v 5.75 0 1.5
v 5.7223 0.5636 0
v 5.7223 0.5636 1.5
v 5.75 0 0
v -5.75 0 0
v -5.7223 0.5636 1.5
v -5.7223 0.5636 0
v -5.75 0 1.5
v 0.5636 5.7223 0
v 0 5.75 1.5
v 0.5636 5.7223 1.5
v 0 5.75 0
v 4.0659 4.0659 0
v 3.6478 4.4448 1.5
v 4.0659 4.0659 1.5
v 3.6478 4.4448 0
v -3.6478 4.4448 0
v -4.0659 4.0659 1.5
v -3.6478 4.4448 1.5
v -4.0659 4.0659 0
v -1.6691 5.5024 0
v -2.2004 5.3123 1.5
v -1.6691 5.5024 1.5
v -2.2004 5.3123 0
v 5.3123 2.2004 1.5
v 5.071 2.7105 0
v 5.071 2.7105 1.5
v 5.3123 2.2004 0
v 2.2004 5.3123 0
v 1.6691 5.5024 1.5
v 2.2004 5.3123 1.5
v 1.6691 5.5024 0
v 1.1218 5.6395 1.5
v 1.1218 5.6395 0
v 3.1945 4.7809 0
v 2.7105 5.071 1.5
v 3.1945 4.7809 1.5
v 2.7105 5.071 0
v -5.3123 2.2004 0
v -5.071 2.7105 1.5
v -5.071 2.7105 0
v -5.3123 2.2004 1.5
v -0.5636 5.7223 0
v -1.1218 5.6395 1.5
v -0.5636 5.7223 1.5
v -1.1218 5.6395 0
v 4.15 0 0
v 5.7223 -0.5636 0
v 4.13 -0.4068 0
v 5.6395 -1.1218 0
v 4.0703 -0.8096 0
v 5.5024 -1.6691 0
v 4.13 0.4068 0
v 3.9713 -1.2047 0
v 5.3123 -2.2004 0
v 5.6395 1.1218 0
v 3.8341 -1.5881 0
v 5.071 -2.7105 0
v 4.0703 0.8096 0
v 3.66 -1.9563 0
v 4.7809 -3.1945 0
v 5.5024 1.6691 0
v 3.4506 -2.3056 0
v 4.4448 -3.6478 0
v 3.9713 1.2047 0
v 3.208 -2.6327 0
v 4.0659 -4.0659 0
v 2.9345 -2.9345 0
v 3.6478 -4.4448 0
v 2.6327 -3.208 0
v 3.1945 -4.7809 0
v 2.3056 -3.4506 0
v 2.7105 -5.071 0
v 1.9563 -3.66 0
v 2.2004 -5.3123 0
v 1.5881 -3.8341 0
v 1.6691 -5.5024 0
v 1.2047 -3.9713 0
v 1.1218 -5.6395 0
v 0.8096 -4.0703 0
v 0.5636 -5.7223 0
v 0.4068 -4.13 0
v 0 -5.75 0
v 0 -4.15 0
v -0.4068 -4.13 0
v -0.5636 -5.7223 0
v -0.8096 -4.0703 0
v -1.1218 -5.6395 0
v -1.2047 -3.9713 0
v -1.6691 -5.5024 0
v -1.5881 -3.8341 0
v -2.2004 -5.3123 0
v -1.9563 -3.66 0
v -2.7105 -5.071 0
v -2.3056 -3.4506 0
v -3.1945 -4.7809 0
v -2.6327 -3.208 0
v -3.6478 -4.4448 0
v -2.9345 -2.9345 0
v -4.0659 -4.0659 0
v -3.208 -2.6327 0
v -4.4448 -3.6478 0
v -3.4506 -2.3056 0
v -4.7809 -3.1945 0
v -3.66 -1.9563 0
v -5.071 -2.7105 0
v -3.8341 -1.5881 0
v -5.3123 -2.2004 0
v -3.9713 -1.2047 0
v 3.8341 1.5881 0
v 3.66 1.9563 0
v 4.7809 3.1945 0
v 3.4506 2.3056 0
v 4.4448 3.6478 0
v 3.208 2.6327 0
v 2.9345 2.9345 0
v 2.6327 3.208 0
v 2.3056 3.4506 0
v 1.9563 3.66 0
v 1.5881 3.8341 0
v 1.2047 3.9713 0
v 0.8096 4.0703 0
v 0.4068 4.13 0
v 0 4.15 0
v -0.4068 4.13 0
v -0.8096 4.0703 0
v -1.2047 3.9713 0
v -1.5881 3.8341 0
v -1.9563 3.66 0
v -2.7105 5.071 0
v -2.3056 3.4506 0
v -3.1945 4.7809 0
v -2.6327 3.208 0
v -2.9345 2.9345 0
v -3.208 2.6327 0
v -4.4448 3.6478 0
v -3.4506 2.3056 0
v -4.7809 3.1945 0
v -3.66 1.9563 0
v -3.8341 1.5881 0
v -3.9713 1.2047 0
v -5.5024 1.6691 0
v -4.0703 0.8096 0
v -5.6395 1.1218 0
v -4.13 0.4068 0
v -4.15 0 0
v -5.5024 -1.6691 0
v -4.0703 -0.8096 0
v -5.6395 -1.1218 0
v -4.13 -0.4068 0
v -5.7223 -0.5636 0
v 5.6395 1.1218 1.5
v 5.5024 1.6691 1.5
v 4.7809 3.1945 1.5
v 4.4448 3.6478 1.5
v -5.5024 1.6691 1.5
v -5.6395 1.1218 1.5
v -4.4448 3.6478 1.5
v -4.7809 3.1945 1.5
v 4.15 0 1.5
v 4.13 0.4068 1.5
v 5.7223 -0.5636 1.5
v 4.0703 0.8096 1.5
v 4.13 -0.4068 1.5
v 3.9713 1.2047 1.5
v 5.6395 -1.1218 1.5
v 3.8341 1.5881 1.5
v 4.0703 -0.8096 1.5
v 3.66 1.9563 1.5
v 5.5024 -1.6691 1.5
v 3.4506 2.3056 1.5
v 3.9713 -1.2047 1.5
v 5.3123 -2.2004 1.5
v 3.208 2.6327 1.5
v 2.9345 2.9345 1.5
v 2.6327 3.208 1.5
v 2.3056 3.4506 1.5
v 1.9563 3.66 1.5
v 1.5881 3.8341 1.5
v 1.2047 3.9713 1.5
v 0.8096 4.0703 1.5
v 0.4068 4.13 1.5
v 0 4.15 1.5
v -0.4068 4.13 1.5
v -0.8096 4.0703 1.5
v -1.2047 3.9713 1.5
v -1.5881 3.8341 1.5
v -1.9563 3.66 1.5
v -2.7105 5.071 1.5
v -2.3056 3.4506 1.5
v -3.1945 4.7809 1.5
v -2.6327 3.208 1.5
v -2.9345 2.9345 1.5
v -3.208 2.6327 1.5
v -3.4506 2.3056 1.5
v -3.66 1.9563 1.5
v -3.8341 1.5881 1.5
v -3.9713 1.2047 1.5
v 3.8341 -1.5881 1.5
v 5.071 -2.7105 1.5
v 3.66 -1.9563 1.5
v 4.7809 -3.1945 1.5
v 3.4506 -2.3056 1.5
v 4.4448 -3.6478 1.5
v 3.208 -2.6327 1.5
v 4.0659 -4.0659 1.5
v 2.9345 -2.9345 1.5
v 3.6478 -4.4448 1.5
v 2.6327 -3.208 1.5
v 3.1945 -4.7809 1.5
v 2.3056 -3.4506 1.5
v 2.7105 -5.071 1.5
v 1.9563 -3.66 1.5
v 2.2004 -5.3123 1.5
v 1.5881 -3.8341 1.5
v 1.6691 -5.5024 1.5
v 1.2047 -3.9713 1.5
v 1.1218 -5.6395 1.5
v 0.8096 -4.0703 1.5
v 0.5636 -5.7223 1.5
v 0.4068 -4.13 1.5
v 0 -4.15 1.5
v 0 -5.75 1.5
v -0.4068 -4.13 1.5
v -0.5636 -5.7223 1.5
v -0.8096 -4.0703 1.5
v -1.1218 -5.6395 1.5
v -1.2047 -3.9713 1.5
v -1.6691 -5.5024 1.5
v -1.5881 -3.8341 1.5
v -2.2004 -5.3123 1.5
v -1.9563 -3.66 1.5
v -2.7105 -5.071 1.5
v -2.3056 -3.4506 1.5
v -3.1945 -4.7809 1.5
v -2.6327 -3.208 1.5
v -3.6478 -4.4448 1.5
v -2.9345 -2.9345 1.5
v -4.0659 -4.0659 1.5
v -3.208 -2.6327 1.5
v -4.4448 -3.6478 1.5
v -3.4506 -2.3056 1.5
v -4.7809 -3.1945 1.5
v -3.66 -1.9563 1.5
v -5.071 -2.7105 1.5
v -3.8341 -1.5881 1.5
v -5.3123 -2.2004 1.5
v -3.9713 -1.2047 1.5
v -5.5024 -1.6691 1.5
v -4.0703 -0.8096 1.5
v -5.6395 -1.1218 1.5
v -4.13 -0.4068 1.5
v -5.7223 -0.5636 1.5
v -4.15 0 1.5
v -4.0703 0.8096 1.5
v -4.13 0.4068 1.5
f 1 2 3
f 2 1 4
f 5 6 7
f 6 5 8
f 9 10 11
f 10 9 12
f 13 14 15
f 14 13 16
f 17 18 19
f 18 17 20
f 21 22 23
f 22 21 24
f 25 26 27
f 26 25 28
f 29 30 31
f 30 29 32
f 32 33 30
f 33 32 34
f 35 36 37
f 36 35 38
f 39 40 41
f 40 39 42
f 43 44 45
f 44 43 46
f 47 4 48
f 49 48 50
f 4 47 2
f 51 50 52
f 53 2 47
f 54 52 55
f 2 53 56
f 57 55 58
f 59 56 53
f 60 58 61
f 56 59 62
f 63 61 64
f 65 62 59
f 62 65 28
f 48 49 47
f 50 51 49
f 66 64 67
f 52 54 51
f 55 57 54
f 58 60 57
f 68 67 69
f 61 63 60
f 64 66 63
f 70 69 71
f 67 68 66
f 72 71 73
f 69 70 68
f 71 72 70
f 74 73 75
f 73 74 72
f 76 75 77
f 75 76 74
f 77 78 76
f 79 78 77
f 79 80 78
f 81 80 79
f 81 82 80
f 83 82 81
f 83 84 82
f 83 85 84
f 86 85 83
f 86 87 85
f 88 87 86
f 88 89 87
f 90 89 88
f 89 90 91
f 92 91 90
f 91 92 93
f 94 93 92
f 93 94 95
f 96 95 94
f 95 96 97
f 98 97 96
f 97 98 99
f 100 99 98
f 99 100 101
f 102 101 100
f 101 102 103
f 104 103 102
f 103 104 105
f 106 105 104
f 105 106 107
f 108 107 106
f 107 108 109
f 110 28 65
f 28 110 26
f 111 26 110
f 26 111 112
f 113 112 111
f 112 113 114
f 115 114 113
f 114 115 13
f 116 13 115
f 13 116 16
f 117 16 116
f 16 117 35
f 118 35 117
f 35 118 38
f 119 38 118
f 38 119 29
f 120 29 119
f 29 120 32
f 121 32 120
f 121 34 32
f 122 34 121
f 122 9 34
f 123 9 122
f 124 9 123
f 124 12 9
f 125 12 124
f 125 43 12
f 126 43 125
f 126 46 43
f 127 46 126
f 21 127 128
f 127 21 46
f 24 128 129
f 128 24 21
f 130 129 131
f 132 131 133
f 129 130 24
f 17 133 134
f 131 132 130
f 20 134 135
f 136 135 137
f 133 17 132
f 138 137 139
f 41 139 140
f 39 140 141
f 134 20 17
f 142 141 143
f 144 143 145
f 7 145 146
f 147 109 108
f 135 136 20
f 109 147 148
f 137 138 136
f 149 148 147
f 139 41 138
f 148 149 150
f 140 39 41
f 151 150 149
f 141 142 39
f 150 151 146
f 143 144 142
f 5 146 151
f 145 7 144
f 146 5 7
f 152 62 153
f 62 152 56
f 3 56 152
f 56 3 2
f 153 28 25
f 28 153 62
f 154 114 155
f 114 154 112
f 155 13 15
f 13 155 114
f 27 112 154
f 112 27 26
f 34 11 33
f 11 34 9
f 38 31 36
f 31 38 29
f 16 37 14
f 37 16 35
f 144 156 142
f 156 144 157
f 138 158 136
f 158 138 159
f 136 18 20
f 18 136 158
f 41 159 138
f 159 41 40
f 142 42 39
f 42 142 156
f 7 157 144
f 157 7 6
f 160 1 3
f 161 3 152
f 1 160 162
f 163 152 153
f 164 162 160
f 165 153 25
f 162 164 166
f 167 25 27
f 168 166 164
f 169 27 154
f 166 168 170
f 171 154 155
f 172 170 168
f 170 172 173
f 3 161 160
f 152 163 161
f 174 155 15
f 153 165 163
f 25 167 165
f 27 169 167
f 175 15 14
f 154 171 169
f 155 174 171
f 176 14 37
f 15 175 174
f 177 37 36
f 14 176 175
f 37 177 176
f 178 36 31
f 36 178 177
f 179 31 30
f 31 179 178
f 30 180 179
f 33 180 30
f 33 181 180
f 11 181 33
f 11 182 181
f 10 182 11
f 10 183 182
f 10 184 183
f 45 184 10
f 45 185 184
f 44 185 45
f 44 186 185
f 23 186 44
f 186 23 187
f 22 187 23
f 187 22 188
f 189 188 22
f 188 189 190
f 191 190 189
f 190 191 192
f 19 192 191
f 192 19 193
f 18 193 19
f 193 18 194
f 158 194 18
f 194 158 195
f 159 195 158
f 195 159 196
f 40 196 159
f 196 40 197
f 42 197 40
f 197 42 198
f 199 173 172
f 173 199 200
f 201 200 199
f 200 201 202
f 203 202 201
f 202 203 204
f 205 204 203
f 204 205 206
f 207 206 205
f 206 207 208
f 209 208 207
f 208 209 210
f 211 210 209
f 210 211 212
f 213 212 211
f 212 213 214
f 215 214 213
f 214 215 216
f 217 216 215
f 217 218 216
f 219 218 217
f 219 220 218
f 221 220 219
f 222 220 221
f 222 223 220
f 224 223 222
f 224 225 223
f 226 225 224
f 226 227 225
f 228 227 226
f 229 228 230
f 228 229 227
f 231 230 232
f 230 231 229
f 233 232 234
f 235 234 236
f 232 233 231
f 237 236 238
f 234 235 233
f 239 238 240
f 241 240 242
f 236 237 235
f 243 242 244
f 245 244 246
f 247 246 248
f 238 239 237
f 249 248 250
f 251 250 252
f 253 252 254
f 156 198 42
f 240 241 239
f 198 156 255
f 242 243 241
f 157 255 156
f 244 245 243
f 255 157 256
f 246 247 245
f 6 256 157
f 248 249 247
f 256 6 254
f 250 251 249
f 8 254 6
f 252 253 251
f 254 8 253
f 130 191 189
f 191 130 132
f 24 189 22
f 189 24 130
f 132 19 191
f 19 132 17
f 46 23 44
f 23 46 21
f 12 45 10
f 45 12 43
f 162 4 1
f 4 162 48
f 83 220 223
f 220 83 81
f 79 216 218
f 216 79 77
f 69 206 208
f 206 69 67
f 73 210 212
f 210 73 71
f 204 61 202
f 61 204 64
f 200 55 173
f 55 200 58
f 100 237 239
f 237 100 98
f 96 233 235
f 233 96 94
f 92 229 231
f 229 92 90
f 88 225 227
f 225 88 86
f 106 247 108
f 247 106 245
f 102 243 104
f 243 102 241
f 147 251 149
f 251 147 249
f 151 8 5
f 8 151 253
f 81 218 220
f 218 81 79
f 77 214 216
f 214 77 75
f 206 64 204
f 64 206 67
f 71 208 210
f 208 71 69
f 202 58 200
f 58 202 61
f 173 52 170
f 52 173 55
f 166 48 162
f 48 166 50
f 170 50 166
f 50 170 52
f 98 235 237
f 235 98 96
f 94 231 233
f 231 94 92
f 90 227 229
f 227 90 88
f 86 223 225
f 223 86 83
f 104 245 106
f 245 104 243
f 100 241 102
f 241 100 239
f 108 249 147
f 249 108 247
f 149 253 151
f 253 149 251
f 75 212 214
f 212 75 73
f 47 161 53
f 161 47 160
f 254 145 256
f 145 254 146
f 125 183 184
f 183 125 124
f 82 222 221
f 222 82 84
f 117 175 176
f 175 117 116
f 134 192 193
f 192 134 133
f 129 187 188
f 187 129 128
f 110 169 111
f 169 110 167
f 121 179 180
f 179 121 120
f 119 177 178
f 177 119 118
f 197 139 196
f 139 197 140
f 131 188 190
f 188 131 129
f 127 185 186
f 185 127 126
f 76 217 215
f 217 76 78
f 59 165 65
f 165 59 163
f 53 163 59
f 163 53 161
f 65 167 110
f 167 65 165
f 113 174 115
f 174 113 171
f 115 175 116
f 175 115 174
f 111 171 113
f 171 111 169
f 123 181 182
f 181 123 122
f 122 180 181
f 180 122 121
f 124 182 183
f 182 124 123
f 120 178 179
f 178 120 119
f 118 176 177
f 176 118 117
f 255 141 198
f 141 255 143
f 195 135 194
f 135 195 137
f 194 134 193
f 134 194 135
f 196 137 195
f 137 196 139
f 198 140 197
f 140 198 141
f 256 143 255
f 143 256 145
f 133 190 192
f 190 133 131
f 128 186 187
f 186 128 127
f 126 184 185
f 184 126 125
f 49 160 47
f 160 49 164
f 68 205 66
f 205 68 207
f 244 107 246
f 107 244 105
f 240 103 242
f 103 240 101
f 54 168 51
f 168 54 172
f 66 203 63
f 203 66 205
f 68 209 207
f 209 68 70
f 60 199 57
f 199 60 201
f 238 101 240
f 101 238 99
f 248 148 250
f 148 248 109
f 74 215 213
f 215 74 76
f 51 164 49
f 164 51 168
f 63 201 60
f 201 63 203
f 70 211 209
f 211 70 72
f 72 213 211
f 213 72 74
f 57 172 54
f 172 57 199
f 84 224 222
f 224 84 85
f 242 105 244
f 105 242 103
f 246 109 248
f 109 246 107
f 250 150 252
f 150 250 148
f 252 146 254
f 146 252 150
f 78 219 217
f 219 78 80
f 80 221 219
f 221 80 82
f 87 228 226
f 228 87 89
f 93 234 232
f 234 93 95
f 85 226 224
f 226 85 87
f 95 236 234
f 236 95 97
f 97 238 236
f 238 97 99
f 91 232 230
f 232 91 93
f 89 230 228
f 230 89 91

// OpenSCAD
// Gen-EE — 608 INNER-RACE SPACER (2026-11-02). Print x2 (one under the lower collar on the pedestal bearing, one between the
// upper collar and the top bearing). Touches ONLY the inner race (Ø < 12 mm), so the collar never rubs the seal / outer race.
include <parameters.scad>;
$fn = 64;
difference() {
    cylinder(d=race_spacer_od, h=race_spacer_h);
    translate([0, 0, -0.1]) cylinder(d=race_spacer_id, h=race_spacer_h + 0.2);
}
